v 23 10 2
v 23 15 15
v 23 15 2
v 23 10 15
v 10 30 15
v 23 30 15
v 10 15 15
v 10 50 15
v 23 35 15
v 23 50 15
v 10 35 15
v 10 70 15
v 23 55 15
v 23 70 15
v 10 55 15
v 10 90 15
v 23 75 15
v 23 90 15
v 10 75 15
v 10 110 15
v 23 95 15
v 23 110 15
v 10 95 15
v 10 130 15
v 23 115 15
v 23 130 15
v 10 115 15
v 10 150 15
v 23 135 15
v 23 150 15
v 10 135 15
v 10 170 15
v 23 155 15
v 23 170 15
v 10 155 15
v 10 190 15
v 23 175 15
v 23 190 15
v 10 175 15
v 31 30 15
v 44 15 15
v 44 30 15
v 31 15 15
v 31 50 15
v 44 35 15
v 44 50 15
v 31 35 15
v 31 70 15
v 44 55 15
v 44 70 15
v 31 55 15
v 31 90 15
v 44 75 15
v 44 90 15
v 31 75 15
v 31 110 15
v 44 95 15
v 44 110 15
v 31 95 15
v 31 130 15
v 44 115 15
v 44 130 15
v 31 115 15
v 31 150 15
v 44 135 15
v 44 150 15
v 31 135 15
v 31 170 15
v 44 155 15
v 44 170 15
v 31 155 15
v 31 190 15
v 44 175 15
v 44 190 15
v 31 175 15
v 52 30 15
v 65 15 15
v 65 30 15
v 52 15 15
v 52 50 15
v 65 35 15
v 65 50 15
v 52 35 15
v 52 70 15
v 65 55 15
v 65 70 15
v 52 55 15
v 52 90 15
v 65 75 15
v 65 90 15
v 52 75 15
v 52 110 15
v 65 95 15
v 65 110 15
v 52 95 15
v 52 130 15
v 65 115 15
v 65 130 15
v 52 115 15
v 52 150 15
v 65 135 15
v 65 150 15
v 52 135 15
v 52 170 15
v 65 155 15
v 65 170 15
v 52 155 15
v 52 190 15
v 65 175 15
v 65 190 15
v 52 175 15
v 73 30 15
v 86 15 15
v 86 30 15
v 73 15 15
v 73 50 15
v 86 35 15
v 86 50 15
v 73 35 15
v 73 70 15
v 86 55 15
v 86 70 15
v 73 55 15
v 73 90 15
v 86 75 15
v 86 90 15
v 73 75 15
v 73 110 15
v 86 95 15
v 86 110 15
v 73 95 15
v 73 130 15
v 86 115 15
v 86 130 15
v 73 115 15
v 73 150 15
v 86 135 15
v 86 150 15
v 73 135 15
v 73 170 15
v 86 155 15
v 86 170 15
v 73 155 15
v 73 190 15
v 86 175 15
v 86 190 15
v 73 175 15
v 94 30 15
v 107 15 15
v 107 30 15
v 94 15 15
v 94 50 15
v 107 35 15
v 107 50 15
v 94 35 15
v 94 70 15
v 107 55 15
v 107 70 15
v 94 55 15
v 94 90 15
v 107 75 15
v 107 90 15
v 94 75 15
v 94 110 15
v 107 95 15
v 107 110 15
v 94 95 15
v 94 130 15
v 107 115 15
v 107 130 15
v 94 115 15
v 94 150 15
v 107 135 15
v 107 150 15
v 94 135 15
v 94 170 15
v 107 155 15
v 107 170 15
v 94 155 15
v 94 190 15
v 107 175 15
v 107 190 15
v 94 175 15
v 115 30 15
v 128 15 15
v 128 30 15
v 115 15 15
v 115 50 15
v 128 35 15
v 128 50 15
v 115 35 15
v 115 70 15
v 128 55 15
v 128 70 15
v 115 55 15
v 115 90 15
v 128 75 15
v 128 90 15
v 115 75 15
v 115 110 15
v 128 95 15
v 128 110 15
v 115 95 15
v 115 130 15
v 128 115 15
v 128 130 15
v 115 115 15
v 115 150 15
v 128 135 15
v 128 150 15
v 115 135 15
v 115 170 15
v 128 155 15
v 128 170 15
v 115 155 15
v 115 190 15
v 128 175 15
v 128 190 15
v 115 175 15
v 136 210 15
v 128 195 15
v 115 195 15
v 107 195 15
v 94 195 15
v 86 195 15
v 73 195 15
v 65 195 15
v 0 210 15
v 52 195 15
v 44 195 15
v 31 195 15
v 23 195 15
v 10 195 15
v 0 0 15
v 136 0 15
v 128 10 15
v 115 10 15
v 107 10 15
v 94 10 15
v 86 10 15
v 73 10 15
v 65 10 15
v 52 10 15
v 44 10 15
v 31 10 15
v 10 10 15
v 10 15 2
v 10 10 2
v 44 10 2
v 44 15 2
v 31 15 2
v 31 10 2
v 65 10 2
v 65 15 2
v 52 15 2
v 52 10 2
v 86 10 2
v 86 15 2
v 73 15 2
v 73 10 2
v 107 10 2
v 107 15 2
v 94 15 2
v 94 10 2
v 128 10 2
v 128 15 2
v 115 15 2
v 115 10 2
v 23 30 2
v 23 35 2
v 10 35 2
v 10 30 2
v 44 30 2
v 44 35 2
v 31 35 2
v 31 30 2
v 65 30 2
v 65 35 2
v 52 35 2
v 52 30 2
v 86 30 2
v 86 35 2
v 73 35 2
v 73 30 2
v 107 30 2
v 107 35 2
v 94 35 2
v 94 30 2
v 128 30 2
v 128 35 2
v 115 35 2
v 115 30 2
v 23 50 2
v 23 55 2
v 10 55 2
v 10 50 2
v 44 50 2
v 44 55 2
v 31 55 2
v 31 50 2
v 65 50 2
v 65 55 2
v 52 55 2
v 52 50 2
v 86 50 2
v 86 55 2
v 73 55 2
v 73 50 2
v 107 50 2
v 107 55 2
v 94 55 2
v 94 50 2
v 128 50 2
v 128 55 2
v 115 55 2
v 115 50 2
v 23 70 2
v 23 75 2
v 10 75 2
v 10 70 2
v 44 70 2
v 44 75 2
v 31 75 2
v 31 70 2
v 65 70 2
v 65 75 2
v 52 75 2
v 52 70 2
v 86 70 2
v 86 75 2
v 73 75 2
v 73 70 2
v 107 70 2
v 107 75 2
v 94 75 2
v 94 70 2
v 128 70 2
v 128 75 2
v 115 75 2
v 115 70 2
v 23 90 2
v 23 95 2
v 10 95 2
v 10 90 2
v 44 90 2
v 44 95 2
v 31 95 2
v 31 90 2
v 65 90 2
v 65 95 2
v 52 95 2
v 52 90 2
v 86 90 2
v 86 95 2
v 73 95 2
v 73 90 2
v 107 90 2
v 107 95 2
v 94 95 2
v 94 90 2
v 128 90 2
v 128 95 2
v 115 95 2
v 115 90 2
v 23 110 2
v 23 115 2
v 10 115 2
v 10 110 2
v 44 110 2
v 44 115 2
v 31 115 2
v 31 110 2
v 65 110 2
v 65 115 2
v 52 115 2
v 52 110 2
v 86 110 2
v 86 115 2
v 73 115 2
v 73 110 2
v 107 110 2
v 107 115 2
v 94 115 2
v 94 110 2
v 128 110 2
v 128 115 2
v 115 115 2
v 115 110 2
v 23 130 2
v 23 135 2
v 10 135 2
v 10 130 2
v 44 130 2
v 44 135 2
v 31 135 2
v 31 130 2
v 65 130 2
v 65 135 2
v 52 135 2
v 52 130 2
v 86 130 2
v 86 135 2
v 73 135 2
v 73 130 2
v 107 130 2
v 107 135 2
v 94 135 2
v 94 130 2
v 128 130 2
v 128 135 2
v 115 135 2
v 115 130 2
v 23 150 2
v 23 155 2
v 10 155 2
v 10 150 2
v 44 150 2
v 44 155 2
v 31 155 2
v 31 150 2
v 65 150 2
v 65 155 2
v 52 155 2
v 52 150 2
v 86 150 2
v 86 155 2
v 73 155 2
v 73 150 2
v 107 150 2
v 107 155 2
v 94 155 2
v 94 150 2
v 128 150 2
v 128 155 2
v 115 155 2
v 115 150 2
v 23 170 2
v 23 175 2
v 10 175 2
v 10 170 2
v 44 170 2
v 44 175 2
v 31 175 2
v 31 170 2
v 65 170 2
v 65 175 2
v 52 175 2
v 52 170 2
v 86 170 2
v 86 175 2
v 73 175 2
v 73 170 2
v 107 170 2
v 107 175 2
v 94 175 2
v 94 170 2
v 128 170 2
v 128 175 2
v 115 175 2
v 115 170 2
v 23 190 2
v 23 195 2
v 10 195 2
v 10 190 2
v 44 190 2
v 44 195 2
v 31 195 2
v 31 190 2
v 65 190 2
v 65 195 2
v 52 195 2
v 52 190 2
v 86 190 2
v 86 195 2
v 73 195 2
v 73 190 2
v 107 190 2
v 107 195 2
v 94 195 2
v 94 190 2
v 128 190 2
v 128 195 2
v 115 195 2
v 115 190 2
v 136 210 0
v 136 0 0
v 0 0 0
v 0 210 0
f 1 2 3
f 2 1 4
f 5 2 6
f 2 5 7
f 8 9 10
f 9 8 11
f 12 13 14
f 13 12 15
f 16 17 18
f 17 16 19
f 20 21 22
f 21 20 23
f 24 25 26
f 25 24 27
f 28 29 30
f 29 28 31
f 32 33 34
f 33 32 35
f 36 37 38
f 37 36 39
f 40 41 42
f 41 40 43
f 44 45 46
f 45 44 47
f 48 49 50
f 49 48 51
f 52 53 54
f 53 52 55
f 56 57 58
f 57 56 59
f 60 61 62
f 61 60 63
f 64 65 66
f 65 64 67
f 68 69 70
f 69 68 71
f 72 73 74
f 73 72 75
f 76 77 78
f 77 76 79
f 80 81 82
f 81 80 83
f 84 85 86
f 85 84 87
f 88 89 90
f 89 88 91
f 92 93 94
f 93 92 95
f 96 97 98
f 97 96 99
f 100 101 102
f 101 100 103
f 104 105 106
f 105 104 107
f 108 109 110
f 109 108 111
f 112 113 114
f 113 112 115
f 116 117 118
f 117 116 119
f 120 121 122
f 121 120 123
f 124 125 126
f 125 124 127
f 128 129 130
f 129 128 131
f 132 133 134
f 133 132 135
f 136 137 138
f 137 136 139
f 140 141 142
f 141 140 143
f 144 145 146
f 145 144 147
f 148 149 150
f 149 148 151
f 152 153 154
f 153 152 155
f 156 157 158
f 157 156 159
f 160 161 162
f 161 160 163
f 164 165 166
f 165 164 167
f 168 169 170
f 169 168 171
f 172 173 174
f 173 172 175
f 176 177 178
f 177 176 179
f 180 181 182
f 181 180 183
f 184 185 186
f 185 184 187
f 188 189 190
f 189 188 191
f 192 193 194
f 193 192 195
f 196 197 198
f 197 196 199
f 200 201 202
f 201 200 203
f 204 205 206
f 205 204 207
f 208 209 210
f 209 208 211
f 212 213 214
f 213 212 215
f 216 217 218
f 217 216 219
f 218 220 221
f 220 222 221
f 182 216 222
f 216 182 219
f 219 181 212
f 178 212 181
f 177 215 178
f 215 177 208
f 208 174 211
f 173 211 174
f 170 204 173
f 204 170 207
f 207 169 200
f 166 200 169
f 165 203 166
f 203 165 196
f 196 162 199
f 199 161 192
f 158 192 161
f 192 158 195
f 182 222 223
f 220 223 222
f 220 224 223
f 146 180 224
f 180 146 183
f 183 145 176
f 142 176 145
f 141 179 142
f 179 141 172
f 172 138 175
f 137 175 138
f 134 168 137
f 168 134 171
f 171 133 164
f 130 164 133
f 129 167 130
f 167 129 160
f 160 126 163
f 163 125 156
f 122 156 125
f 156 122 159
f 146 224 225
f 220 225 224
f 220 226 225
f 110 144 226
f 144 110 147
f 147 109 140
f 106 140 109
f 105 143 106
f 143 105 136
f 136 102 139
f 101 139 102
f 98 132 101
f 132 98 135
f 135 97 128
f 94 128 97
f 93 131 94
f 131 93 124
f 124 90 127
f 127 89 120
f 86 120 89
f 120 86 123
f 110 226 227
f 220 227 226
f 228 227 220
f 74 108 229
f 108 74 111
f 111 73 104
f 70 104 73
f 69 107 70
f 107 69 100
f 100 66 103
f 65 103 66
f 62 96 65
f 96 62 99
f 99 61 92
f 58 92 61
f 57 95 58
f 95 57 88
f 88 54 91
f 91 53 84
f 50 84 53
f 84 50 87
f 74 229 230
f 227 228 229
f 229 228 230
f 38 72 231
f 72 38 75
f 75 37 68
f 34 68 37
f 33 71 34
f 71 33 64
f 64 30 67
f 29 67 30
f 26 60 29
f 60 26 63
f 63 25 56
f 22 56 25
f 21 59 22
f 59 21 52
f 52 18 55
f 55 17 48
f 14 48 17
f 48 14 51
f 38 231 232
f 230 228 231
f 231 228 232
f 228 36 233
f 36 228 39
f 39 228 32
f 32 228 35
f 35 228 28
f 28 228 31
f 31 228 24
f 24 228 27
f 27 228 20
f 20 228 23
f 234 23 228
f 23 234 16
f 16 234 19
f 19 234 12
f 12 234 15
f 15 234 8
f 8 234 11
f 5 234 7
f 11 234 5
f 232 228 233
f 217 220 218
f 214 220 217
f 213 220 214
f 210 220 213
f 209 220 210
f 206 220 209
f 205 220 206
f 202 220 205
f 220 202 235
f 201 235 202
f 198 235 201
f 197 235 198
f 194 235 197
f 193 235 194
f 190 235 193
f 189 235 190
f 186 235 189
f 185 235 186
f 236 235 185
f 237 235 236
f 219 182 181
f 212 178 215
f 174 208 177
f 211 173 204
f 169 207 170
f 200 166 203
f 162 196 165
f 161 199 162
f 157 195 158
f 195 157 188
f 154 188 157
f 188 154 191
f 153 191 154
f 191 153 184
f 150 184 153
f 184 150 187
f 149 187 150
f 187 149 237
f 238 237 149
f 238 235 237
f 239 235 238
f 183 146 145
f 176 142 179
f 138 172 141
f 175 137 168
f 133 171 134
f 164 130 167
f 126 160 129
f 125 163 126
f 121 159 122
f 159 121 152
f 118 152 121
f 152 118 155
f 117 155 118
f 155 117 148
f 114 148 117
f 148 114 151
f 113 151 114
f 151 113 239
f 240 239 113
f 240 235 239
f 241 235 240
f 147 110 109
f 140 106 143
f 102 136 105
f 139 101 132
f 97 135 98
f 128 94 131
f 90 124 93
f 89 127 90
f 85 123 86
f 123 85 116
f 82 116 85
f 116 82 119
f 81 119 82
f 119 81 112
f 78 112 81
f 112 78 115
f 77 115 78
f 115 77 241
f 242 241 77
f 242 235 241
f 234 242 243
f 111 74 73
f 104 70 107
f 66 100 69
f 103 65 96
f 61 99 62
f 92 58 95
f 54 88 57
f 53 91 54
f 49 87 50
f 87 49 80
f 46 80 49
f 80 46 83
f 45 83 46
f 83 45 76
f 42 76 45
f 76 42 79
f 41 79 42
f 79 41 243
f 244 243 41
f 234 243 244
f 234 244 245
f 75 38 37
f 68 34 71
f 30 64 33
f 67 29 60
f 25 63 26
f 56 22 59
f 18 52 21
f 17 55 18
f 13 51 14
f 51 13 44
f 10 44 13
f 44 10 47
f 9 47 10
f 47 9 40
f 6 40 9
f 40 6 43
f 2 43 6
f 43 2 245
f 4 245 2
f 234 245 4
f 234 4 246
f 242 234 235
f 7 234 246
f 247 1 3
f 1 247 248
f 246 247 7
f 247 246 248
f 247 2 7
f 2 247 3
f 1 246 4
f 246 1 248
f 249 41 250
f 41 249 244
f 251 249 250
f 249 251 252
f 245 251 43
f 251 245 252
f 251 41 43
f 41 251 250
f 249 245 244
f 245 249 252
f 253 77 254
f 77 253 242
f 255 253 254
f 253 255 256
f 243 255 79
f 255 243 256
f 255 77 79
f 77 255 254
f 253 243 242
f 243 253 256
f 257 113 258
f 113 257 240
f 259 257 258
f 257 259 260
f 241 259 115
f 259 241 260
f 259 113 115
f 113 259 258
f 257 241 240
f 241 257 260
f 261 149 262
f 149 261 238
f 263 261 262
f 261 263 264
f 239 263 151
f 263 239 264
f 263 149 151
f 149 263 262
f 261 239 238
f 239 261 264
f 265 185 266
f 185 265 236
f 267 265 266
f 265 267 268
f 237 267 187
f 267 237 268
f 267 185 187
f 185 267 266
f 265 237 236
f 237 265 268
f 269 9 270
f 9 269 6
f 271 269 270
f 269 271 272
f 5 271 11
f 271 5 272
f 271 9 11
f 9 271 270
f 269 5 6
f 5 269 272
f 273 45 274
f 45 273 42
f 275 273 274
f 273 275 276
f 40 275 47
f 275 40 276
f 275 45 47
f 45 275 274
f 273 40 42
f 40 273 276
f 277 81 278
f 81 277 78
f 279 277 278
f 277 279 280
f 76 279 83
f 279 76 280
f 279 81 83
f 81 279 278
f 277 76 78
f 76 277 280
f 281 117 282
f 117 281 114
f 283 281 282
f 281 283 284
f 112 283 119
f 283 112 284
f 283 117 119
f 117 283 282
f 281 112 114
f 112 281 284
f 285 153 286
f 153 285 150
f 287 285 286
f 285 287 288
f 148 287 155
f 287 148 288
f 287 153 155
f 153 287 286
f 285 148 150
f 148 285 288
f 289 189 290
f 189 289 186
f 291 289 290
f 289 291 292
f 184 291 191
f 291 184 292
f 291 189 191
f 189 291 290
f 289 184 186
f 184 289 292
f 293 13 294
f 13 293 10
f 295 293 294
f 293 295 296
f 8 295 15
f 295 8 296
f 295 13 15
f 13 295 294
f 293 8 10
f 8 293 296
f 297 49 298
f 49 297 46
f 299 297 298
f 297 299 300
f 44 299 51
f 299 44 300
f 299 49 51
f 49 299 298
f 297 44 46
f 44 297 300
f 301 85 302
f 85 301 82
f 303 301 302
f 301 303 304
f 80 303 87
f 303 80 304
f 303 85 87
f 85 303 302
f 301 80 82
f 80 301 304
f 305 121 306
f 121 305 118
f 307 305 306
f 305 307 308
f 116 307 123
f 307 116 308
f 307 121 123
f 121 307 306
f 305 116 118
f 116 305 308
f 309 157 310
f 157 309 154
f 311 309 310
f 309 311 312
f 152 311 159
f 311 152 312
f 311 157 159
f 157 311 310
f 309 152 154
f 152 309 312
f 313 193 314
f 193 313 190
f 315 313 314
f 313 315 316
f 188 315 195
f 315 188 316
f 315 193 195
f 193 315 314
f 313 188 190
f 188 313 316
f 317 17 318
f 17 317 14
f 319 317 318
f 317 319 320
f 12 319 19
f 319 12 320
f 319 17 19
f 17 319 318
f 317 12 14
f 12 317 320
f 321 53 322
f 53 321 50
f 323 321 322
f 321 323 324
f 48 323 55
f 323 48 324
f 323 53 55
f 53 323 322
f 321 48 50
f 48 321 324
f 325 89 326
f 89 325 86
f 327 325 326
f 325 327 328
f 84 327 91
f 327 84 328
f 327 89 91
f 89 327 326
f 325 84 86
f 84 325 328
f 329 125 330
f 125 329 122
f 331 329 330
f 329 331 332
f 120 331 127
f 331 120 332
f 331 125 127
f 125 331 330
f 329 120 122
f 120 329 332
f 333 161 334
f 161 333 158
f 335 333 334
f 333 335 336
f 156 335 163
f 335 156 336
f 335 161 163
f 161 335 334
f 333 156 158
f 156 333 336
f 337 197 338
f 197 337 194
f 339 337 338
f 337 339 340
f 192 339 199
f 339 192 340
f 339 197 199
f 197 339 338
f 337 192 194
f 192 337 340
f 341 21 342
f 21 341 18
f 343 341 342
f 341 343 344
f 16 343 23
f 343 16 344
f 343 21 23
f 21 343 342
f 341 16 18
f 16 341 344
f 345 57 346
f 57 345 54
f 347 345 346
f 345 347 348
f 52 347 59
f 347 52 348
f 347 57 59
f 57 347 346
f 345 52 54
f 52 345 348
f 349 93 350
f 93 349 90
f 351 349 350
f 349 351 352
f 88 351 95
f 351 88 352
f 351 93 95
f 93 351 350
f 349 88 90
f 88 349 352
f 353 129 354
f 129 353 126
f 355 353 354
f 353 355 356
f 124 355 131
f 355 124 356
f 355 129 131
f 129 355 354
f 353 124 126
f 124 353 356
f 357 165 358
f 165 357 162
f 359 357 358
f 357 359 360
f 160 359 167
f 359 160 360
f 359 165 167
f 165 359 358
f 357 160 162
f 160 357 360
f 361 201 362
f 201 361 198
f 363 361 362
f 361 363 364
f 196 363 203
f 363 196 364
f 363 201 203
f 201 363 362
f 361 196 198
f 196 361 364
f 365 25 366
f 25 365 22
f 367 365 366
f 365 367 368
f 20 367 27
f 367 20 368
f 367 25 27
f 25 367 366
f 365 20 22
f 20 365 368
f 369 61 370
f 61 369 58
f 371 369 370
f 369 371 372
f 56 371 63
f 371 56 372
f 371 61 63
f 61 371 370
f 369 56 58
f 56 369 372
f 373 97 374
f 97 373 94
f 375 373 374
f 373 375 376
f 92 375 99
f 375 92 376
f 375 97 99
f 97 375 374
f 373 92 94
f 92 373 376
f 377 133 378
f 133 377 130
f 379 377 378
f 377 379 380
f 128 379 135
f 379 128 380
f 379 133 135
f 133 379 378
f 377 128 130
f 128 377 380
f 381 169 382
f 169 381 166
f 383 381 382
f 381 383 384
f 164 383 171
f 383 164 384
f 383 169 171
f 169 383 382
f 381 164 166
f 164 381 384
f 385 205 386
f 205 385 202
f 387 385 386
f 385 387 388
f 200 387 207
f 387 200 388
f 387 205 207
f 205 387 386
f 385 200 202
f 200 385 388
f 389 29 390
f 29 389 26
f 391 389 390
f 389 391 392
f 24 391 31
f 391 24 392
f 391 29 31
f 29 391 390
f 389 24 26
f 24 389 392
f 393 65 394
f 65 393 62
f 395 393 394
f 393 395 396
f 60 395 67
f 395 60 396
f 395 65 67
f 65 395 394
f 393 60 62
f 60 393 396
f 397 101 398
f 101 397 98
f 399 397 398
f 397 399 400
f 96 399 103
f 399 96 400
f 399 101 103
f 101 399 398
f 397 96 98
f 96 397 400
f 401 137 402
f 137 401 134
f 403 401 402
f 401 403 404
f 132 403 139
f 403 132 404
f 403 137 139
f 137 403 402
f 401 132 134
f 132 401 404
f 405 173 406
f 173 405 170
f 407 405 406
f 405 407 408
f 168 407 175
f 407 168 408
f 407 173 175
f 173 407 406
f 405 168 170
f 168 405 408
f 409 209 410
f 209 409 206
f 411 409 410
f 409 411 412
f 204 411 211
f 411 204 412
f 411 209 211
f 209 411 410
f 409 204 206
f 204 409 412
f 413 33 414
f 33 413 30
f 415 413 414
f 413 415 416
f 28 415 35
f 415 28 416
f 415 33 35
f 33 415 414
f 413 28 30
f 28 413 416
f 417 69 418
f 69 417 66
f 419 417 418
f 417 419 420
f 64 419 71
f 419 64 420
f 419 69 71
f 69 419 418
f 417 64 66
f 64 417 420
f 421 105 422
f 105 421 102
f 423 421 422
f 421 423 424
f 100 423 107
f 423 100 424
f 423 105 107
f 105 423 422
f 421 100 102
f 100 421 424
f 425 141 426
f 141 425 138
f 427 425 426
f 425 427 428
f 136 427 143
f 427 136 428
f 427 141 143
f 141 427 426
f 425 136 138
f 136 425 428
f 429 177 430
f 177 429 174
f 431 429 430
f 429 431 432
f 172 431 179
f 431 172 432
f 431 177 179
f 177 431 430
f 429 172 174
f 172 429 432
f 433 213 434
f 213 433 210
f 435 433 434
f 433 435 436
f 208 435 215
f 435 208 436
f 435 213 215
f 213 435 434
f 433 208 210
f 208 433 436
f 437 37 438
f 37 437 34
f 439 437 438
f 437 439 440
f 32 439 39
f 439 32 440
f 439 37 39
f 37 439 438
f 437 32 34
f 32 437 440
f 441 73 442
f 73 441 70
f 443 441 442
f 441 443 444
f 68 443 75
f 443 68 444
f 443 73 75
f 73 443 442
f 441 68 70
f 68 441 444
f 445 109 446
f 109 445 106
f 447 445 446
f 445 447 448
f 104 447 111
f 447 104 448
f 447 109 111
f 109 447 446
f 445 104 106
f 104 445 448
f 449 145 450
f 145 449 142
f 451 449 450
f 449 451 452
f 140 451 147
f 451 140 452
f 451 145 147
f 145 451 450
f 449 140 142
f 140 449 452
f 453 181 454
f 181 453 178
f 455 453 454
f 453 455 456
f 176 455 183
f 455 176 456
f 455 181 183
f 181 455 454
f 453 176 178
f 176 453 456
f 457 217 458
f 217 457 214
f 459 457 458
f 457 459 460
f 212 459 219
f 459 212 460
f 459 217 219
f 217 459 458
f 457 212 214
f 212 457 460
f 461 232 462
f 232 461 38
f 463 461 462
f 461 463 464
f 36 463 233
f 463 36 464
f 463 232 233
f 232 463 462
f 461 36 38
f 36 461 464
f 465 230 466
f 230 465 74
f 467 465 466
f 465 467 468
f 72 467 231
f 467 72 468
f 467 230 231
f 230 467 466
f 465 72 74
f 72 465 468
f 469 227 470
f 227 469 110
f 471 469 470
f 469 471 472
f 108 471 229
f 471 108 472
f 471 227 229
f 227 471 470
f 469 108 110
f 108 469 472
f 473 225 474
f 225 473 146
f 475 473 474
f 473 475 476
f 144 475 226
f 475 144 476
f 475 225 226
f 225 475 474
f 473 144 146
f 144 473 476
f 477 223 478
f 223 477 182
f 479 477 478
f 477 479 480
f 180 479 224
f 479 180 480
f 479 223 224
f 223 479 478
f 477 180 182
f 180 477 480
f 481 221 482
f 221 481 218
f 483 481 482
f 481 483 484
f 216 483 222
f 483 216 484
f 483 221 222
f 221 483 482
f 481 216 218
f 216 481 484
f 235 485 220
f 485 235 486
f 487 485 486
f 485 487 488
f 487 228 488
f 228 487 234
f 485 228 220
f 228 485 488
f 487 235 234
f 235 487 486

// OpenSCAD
naast_elkaar = 6;
achter_elkaar = 10;
thickness = 15;
usb_width = 13;
usb_depth = 5;
usb_height = 13;
x_spacing = 8;
y_spacing = 15;
border_spacing = 10;

total_width = border_spacing + naast_elkaar * (x_spacing + usb_width);
total_depth = border_spacing + achter_elkaar * (y_spacing + usb_depth);

difference()
{
    cube([total_width, total_depth, thickness]);
    
    for (y = [0 : achter_elkaar - 1])
    {
        for (x = [0 : naast_elkaar - 1])
        {
            translate([
                border_spacing + x * (usb_width + x_spacing), 
                border_spacing + y * (usb_depth + y_spacing), 
                thickness - usb_height])
            {
                echo(x, y);
                cube([usb_width, usb_depth, usb_height]);
            }
        }
    }
    
}
